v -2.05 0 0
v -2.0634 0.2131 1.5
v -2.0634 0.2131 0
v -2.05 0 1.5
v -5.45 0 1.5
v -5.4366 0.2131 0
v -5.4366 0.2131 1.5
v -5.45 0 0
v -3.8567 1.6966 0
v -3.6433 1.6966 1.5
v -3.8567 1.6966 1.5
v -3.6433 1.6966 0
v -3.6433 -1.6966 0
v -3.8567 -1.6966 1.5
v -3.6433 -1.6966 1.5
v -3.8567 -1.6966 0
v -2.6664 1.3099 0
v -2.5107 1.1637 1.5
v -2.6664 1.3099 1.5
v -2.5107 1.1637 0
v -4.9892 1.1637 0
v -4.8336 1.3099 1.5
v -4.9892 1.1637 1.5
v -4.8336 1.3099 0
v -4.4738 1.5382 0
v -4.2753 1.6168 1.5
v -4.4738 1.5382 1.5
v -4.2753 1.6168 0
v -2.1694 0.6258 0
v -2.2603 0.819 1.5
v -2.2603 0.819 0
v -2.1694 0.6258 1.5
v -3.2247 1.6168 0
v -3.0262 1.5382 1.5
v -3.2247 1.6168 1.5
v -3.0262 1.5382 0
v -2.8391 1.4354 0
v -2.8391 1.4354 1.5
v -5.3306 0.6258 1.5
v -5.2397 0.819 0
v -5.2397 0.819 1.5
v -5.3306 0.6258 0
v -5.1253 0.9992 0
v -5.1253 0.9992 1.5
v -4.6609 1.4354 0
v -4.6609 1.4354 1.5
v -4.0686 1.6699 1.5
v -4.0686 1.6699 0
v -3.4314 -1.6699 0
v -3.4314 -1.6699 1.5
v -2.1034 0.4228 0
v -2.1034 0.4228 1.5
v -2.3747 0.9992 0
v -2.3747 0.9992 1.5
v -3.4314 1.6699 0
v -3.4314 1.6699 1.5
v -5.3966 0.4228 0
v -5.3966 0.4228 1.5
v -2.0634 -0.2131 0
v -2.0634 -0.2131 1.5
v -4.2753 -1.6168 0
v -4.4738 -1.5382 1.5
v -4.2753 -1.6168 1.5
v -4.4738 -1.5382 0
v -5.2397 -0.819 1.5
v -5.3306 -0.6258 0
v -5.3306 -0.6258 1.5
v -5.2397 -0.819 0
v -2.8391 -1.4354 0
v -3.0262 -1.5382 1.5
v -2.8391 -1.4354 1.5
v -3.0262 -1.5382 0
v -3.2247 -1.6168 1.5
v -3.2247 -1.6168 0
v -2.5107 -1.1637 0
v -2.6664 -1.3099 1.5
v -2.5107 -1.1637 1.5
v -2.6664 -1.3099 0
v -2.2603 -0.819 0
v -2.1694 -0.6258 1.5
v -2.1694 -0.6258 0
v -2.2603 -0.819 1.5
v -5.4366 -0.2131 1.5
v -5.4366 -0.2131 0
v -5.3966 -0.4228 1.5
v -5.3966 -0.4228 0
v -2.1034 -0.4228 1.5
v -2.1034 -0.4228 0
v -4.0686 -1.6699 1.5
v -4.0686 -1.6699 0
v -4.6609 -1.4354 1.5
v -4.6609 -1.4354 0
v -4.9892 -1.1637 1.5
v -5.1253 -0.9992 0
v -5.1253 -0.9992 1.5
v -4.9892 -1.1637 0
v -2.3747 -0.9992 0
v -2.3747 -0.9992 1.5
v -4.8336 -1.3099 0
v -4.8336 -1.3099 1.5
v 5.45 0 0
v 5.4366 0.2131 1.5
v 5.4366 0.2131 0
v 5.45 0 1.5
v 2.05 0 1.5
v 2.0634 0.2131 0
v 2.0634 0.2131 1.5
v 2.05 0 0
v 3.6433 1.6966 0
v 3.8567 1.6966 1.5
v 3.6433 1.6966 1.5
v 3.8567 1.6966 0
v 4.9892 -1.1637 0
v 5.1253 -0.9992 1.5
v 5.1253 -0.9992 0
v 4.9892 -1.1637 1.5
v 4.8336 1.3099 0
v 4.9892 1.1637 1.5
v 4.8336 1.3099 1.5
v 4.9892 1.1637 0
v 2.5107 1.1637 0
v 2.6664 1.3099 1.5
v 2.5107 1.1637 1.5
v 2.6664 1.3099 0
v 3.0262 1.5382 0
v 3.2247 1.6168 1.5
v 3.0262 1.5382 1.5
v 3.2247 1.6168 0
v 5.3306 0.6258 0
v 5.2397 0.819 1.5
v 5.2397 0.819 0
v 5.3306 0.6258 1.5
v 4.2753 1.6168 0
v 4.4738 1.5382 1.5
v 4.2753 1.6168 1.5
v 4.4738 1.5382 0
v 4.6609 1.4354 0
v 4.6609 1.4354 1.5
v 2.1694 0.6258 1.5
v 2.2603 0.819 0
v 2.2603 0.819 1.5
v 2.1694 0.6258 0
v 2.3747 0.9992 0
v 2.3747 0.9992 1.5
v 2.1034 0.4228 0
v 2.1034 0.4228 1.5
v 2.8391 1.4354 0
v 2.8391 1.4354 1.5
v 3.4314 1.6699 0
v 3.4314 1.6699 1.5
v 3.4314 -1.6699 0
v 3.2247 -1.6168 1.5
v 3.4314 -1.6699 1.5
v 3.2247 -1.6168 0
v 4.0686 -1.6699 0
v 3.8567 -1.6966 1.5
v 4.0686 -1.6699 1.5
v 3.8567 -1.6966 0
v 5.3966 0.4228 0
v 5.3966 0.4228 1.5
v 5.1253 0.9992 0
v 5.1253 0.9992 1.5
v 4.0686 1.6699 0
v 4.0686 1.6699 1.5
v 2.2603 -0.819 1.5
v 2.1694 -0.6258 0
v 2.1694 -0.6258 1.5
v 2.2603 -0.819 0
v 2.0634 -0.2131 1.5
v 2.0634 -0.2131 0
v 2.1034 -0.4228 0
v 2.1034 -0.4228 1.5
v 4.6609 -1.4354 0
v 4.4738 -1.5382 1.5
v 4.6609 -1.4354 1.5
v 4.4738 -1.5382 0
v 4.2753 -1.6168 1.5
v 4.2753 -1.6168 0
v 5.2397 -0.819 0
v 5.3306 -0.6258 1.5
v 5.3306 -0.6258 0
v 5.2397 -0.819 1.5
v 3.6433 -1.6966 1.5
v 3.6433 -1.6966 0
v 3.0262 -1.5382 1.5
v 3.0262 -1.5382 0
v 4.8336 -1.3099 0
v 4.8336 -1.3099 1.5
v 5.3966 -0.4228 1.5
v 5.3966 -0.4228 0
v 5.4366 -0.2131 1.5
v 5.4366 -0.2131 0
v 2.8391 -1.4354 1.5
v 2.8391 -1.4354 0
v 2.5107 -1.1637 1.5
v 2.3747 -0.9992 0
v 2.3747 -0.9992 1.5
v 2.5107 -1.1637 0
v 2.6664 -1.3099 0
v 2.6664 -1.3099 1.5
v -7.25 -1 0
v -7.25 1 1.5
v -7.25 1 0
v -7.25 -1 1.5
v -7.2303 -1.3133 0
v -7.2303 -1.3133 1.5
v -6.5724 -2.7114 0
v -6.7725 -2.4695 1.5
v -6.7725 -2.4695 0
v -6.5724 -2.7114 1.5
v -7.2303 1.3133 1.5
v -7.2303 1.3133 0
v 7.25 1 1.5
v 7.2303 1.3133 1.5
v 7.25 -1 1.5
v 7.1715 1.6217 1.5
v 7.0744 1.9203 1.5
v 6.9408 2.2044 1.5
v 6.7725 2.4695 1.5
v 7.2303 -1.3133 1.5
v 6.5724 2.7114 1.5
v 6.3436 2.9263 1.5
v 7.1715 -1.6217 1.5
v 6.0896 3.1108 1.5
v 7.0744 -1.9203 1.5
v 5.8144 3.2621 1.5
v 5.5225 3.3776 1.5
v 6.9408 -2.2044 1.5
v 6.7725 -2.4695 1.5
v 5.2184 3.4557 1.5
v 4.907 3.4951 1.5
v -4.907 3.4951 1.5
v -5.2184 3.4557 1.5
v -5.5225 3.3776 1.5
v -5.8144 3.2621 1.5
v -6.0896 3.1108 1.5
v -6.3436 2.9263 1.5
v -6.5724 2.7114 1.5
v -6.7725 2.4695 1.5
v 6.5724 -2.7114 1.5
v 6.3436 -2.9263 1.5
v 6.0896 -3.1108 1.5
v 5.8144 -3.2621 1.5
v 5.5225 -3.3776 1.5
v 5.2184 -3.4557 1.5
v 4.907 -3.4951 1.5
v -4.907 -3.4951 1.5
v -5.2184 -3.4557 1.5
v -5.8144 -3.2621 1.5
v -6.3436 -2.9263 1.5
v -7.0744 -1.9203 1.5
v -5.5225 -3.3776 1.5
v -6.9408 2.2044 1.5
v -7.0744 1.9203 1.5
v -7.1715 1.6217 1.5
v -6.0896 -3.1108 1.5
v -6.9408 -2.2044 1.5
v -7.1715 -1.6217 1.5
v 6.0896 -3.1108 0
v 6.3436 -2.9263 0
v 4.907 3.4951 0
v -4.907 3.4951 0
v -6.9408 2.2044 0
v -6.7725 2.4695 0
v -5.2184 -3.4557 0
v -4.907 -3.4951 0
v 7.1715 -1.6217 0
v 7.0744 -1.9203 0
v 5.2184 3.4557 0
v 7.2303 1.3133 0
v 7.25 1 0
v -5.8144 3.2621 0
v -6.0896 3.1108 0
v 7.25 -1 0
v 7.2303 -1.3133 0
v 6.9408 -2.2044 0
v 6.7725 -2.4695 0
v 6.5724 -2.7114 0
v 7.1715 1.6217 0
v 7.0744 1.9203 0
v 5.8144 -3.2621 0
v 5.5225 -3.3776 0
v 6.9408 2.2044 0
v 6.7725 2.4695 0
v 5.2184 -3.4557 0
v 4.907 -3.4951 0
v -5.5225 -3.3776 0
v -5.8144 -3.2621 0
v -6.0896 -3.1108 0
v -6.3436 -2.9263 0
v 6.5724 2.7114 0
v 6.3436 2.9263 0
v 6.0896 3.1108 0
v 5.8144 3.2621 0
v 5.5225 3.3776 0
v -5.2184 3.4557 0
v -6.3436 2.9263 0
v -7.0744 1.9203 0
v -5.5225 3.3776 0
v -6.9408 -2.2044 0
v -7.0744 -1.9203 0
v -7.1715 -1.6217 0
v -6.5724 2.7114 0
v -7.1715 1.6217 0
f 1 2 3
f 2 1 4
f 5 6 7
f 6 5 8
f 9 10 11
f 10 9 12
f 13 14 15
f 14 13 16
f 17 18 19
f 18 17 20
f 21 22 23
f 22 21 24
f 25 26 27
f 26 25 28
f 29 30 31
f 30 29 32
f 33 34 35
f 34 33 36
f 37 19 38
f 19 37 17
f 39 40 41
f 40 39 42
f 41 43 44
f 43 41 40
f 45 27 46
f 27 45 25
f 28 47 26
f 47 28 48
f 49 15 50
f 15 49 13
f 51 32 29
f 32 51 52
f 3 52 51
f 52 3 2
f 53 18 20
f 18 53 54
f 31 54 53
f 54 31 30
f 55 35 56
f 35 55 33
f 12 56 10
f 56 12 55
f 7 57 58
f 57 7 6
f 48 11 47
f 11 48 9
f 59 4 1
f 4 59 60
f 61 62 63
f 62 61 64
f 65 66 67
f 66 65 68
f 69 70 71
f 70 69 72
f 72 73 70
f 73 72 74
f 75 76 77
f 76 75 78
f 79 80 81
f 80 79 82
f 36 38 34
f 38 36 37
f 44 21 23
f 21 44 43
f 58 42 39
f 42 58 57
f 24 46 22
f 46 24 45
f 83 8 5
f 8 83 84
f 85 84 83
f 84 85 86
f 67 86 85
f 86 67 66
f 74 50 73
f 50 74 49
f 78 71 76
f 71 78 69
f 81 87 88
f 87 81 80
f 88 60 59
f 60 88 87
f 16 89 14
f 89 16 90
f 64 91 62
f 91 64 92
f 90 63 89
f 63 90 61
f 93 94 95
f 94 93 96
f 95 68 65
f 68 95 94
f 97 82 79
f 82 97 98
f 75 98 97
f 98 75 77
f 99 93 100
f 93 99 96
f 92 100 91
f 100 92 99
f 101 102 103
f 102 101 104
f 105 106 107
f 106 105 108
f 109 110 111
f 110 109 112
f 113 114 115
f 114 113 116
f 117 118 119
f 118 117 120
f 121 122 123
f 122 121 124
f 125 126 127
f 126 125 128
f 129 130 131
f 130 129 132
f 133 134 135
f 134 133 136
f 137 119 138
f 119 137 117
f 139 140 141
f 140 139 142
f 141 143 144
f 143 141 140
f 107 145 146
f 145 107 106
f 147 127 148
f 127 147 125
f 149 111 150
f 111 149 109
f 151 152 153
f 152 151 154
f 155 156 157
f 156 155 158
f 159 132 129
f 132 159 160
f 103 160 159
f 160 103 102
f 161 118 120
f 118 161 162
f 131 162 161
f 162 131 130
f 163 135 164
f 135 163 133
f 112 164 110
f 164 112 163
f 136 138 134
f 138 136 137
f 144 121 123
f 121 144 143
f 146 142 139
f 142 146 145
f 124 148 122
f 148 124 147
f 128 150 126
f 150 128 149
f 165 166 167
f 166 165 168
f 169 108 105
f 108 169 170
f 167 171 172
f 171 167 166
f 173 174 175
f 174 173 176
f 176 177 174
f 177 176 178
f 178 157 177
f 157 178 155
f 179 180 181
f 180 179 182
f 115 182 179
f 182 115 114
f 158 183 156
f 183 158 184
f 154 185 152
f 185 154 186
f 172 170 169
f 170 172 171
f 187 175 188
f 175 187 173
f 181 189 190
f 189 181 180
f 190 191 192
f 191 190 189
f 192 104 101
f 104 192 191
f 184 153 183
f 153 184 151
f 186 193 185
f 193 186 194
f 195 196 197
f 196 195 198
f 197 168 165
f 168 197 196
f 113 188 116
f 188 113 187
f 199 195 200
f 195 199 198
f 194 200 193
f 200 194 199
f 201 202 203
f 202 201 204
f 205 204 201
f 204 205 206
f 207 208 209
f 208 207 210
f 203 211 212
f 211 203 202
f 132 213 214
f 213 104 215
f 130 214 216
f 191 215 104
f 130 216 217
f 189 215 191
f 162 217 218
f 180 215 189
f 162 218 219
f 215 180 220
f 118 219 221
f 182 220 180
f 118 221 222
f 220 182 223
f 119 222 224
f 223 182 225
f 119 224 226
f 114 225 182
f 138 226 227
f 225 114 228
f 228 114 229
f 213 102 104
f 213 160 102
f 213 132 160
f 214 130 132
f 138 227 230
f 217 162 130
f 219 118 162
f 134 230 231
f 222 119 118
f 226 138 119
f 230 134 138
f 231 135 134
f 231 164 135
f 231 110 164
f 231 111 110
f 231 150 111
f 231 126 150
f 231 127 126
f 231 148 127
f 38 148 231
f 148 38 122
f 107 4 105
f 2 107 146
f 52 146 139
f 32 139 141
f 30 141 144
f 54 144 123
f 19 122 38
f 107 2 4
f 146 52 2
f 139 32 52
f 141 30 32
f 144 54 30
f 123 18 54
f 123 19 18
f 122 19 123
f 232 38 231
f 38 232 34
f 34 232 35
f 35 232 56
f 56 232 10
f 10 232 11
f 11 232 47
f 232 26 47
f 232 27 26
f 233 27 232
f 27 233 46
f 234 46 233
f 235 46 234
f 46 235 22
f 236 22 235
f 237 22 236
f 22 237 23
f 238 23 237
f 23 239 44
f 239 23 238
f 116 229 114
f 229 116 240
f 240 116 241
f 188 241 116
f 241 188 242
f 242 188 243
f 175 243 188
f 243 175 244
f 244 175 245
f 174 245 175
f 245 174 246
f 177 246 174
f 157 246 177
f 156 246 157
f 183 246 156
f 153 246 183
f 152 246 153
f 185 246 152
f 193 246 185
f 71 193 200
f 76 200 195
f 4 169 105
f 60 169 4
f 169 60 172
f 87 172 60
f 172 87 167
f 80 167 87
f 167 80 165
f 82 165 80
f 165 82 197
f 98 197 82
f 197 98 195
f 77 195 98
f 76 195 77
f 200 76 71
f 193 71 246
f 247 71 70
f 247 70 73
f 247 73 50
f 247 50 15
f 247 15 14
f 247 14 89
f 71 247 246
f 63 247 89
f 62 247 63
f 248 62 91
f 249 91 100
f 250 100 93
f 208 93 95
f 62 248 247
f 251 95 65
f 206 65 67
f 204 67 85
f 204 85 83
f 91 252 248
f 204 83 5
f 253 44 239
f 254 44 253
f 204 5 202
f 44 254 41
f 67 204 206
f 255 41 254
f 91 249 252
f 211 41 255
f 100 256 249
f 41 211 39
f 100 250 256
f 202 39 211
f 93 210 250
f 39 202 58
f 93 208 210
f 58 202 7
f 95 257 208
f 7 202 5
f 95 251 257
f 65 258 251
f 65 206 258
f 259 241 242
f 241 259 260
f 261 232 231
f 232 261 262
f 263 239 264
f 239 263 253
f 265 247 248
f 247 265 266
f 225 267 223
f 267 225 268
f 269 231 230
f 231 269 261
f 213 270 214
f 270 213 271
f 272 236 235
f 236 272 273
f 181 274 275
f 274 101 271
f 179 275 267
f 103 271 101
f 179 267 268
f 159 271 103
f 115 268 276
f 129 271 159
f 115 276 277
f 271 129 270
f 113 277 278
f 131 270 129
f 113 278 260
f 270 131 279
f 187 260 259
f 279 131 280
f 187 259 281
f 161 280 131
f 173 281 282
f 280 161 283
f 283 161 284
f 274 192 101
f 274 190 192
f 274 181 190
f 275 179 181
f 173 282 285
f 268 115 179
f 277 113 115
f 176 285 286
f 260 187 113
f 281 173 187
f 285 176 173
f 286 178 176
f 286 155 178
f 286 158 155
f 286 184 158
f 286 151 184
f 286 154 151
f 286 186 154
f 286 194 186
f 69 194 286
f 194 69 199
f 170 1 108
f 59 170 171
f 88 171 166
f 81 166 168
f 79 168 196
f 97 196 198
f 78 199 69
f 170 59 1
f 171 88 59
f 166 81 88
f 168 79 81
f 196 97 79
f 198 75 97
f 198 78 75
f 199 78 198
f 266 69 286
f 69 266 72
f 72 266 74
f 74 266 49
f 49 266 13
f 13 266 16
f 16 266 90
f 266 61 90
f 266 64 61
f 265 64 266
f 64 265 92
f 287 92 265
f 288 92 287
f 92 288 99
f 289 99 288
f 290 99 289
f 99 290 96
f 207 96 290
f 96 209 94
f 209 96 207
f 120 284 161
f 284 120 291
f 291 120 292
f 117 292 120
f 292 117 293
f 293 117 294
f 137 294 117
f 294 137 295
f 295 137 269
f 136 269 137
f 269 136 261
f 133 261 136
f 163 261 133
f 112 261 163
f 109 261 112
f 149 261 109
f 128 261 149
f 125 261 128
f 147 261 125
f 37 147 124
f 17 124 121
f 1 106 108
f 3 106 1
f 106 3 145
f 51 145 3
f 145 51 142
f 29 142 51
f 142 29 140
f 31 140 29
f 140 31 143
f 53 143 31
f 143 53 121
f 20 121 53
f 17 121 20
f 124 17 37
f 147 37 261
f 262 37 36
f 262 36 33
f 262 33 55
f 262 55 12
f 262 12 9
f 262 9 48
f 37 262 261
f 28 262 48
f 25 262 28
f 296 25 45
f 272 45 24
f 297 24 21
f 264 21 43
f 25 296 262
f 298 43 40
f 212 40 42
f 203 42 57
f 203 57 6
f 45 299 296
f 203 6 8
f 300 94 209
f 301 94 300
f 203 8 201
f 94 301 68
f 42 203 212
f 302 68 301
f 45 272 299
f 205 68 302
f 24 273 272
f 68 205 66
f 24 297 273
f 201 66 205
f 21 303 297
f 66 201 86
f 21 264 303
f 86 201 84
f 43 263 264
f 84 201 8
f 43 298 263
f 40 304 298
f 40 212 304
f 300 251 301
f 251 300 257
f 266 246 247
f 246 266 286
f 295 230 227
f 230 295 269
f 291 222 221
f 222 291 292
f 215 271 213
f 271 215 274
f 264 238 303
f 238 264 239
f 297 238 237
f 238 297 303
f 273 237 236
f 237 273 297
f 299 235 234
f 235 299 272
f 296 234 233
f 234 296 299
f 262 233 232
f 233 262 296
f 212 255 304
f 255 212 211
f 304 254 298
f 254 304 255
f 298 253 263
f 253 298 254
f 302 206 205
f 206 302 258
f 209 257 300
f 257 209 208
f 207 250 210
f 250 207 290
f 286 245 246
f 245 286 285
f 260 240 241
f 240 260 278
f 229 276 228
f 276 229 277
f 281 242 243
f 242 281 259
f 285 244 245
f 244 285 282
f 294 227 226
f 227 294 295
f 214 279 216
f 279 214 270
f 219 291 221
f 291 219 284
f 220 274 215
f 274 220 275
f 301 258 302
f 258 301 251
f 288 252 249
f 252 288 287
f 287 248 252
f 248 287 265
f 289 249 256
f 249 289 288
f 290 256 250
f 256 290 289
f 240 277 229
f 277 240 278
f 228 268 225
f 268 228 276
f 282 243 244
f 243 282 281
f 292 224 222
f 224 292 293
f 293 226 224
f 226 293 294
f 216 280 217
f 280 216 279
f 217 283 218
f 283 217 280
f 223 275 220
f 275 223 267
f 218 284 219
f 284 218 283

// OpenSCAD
$fn = 50;


difference() {
	union() {
		translate(v = [0, 0, 0]) {
			rotate(a = [0, 0, 0]) {
				hull() {
					translate(v = [-4.7500000000, 1.0000000000, 0]) {
						rotate(a = [0, 0, 0]) {
							translate(v = [0, 0, 0]) {
								rotate(a = [0, 0, 0]) {
									cylinder(h = 1.5000000000, r = 2.5000000000);
								}
							}
						}
					}
					translate(v = [4.7500000000, 1.0000000000, 0]) {
						rotate(a = [0, 0, 0]) {
							translate(v = [0, 0, 0]) {
								rotate(a = [0, 0, 0]) {
									cylinder(h = 1.5000000000, r = 2.5000000000);
								}
							}
						}
					}
					translate(v = [-4.7500000000, -1.0000000000, 0]) {
						rotate(a = [0, 0, 0]) {
							translate(v = [0, 0, 0]) {
								rotate(a = [0, 0, 0]) {
									cylinder(h = 1.5000000000, r = 2.5000000000);
								}
							}
						}
					}
					translate(v = [4.7500000000, -1.0000000000, 0]) {
						rotate(a = [0, 0, 0]) {
							translate(v = [0, 0, 0]) {
								rotate(a = [0, 0, 0]) {
									cylinder(h = 1.5000000000, r = 2.5000000000);
								}
							}
						}
					}
				}
			}
		}
	}
	union() {
		translate(v = [-3.7500000000, 0.0000000000, 0]) {
			rotate(a = [0, 0, 0]) {
				translate(v = [0, 0, -50]) {
					rotate(a = [0, 0, 0]) {
						cylinder(h = 100, r = 1.7000000000);
					}
				}
			}
		}
		translate(v = [3.7500000000, 0.0000000000, 0]) {
			rotate(a = [0, 0, 0]) {
				translate(v = [0, 0, -50]) {
					rotate(a = [0, 0, 0]) {
						cylinder(h = 100, r = 1.7000000000);
					}
				}
			}
		}
	}
}
